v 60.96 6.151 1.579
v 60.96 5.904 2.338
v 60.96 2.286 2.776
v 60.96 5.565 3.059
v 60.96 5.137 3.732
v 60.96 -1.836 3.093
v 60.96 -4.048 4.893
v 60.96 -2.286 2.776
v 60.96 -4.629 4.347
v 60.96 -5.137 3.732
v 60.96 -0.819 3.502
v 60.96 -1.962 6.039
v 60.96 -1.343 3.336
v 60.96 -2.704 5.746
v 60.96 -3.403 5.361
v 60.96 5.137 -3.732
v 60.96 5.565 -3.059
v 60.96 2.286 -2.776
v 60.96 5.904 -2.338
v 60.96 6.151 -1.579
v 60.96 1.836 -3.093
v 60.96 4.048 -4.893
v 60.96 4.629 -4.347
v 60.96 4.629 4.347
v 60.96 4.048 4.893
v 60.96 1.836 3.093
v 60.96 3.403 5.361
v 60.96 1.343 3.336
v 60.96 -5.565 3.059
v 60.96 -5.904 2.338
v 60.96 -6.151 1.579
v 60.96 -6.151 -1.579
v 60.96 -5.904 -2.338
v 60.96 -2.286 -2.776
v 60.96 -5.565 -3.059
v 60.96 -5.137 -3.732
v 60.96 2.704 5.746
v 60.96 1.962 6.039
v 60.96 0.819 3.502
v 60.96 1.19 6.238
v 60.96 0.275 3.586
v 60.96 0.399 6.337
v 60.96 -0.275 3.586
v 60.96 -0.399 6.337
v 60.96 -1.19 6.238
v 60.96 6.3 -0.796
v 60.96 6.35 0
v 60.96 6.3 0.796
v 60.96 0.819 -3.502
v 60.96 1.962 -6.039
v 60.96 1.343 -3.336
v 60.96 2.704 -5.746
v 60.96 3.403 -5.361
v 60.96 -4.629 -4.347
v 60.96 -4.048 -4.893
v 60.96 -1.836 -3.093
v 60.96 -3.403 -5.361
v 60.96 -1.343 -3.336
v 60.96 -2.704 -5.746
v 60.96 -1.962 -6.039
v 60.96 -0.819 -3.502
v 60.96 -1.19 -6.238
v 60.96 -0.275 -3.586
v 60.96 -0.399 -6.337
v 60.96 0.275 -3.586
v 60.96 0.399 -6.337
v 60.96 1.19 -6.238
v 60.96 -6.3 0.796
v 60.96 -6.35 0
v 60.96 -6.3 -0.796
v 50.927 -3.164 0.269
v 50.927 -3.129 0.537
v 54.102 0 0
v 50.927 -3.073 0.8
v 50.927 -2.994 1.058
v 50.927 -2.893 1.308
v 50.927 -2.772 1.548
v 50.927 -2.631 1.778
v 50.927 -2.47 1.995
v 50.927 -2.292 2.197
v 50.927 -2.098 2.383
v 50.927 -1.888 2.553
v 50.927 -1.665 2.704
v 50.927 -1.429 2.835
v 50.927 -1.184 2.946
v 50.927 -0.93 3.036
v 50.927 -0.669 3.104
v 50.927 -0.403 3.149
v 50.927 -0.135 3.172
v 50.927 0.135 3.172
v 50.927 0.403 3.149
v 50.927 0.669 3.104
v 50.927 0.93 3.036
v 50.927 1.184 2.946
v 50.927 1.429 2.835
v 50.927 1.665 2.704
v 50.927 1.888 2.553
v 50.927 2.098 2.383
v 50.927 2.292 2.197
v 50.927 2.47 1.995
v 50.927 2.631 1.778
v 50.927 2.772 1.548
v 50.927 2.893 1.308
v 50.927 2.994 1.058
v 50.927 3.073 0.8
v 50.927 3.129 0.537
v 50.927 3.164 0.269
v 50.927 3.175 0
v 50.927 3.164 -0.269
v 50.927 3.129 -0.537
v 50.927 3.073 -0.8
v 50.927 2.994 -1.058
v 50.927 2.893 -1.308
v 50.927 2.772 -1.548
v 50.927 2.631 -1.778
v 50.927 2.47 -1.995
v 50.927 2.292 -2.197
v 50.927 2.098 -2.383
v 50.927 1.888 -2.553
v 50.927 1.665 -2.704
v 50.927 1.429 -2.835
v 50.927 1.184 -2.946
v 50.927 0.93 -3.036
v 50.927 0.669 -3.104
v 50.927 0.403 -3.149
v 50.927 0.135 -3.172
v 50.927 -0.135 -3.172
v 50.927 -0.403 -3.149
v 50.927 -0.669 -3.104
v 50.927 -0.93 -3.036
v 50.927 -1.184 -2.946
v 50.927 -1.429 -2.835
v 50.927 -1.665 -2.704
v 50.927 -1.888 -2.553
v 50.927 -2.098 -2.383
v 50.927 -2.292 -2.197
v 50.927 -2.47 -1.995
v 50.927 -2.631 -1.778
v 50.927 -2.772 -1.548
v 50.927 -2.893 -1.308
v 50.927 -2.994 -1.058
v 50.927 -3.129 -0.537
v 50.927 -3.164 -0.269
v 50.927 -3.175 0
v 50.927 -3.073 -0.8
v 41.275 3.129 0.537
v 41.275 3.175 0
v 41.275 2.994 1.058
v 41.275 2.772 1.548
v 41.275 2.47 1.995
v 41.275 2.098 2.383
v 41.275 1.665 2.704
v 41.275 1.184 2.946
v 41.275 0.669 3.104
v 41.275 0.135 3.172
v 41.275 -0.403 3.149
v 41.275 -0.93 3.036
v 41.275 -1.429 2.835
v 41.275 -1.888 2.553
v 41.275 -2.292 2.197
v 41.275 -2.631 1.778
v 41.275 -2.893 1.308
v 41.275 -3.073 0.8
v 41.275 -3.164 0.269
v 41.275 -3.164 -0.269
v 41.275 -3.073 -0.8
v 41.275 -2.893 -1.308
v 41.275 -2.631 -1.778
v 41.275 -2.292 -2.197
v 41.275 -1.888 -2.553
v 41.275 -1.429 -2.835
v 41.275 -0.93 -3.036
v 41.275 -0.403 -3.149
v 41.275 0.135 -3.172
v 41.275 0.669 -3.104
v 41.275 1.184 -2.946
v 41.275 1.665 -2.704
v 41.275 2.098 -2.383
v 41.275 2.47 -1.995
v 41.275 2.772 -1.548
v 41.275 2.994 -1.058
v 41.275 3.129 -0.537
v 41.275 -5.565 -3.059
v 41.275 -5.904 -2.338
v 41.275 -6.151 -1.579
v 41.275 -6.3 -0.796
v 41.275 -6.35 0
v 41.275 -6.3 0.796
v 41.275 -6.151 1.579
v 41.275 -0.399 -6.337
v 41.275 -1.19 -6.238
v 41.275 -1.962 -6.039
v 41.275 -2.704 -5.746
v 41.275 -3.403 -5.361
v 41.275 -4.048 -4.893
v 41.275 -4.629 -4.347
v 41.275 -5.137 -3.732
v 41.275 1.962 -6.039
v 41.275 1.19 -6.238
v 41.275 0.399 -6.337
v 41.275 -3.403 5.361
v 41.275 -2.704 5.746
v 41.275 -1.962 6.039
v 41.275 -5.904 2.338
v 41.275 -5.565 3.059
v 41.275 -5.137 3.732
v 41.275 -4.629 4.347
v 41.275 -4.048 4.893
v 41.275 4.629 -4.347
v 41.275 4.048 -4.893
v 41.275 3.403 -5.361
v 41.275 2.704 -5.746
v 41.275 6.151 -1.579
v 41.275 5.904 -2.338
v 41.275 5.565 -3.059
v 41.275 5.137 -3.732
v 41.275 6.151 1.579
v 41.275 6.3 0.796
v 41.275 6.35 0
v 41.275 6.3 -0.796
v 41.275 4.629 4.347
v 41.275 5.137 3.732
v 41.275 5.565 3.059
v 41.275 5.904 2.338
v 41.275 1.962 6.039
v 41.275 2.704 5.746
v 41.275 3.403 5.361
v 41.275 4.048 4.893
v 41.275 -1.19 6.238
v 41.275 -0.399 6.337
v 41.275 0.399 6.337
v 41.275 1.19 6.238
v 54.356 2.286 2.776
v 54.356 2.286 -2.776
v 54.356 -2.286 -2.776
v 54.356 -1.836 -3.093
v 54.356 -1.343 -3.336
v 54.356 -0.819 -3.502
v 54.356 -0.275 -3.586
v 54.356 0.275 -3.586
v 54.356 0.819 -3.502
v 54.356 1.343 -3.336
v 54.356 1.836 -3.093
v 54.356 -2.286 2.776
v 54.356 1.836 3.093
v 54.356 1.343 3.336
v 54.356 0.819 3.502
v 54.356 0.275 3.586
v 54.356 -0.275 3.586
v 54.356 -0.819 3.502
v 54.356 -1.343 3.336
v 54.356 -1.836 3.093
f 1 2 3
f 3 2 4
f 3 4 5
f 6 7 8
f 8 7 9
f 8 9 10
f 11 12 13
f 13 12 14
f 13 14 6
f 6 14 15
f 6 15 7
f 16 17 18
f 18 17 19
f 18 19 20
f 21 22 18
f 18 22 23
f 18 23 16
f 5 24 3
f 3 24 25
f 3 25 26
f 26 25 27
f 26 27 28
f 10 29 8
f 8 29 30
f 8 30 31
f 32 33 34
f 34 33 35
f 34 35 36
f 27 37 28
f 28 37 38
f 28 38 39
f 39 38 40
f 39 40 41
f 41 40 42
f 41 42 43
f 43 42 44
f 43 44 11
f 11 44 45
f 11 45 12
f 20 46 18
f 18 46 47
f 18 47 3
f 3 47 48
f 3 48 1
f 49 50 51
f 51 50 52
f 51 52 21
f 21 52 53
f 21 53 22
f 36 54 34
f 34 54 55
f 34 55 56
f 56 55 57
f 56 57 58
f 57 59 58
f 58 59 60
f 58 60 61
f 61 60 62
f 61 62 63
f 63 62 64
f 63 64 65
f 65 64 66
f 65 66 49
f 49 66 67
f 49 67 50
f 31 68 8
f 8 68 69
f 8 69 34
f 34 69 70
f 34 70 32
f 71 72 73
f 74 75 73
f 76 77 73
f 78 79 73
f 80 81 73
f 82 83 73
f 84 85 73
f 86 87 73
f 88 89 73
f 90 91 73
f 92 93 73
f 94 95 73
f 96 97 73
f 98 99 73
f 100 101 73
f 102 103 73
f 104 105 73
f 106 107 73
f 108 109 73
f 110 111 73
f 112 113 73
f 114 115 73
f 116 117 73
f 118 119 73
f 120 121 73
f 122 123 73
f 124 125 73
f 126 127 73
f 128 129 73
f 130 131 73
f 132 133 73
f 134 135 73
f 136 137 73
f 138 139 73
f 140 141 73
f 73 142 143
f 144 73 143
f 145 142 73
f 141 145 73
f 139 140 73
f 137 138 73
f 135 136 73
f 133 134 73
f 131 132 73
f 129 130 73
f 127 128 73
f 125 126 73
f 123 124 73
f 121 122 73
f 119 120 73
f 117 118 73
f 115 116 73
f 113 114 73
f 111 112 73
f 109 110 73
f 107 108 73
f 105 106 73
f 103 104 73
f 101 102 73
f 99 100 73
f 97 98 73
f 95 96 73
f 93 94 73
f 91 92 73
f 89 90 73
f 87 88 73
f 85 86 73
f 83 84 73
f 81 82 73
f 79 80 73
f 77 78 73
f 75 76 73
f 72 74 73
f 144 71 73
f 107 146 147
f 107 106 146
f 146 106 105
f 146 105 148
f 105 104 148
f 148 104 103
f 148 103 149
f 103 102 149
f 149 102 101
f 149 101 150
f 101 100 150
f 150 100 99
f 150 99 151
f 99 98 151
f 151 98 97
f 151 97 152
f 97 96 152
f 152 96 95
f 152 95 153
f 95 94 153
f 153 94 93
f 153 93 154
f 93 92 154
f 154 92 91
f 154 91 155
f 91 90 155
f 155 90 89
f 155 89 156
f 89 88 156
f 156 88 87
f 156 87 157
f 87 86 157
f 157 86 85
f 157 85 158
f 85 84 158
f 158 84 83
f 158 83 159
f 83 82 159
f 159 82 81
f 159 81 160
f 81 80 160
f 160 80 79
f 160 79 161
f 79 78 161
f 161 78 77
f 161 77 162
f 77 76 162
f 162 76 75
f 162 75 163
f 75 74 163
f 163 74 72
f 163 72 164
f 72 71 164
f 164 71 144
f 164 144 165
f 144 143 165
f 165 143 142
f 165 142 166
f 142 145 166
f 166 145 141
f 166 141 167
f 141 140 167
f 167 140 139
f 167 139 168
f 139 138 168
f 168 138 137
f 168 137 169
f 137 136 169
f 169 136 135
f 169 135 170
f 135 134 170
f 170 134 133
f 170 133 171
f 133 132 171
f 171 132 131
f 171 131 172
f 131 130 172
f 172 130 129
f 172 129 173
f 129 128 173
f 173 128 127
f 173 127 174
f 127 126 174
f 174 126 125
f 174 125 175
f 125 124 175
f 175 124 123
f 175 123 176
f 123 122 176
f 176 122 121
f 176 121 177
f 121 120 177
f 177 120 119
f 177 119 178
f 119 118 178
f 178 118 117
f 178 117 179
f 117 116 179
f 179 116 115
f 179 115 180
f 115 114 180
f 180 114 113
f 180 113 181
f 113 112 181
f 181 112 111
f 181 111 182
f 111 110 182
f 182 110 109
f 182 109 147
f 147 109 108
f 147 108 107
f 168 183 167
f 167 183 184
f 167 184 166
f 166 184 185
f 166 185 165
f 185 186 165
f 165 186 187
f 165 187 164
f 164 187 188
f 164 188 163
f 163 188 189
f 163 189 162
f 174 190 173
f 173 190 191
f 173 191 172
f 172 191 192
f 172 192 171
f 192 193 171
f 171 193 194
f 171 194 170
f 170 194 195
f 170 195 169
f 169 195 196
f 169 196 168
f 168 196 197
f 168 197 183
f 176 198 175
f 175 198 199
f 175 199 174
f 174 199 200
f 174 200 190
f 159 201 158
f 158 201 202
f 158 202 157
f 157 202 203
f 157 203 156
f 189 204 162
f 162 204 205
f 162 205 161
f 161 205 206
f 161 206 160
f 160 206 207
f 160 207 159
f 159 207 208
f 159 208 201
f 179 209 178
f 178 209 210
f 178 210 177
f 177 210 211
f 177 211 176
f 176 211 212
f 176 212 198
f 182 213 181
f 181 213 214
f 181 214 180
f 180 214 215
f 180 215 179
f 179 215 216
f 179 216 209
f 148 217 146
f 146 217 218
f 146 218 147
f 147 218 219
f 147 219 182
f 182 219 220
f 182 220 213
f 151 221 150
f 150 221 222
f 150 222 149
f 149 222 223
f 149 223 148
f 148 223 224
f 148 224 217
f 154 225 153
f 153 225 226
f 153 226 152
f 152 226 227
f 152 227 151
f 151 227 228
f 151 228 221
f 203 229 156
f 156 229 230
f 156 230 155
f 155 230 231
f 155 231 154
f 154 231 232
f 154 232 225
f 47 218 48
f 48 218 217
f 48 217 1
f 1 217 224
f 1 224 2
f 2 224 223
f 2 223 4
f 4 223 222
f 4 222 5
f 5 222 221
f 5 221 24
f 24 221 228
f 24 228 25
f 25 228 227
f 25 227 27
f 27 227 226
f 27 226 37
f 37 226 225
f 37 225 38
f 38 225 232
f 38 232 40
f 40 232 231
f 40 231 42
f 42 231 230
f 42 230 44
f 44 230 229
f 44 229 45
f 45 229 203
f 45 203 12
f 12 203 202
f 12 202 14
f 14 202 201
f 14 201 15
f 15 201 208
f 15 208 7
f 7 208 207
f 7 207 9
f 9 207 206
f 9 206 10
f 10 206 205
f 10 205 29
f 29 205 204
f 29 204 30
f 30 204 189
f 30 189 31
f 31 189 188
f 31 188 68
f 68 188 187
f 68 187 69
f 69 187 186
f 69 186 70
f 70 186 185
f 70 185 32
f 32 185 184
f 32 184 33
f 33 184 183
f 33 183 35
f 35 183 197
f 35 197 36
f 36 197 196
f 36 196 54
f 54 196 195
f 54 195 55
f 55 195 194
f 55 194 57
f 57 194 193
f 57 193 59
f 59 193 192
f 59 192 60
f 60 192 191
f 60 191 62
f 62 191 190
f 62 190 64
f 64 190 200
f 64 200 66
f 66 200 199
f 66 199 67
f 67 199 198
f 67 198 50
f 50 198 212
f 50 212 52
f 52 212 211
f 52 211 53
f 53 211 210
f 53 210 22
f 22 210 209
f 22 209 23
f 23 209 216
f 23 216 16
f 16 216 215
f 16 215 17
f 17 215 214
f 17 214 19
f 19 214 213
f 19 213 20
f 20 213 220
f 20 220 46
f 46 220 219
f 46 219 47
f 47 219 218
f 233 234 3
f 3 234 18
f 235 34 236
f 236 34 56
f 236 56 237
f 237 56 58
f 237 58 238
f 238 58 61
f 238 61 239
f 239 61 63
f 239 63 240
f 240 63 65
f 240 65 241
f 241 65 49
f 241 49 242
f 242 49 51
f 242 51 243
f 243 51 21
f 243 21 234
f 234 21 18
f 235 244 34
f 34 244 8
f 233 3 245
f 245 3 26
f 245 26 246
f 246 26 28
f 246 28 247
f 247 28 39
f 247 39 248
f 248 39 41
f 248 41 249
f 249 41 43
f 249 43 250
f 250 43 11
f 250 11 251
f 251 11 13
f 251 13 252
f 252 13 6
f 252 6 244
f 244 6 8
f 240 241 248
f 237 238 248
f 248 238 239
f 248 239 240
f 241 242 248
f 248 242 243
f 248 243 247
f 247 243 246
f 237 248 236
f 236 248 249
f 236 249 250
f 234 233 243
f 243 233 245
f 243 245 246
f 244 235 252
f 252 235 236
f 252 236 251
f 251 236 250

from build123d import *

# Parameters (mm, degrees)
CUT_EXTRUDE2_DEPTH = 6.604


with BuildPart() as part:
    # Sketch2 → Revolve1 (revolve)
    with BuildSketch(Plane.XY):
        Polygon((60.96, 6.35), (60.96, 0), (54.102, 0), (50.927, 3.175), (41.275, 3.175), (41.275, 6.35), align=None)
    revolve(axis=Axis((60.96, 0, 0), (-1, 0, 0)))

    # Sketch8 → Cut-Extrude2 (cut)
    with BuildSketch(Plane(origin=(60.96, 0, 0), x_dir=(0, 0, -1), z_dir=(1, 0, 0))):
        with BuildLine():
            Line((2.776494522, 2.286), (-2.776494522, 2.286))
            ThreePointArc((-2.776494522, 2.286), (-3.596486873, 0), (-2.776494522, -2.286))
            Line((-2.776494522, -2.286), (2.776494522, -2.286))
            ThreePointArc((2.776494522, -2.286), (3.385287575, -1.214308801), (3.596486873, 0))
            ThreePointArc((3.596486873, 0), (3.385287575, 1.214308801), (2.776494522, 2.286))
        make_face()
    extrude(amount=-CUT_EXTRUDE2_DEPTH, mode=Mode.SUBTRACT)


solid = part.part
